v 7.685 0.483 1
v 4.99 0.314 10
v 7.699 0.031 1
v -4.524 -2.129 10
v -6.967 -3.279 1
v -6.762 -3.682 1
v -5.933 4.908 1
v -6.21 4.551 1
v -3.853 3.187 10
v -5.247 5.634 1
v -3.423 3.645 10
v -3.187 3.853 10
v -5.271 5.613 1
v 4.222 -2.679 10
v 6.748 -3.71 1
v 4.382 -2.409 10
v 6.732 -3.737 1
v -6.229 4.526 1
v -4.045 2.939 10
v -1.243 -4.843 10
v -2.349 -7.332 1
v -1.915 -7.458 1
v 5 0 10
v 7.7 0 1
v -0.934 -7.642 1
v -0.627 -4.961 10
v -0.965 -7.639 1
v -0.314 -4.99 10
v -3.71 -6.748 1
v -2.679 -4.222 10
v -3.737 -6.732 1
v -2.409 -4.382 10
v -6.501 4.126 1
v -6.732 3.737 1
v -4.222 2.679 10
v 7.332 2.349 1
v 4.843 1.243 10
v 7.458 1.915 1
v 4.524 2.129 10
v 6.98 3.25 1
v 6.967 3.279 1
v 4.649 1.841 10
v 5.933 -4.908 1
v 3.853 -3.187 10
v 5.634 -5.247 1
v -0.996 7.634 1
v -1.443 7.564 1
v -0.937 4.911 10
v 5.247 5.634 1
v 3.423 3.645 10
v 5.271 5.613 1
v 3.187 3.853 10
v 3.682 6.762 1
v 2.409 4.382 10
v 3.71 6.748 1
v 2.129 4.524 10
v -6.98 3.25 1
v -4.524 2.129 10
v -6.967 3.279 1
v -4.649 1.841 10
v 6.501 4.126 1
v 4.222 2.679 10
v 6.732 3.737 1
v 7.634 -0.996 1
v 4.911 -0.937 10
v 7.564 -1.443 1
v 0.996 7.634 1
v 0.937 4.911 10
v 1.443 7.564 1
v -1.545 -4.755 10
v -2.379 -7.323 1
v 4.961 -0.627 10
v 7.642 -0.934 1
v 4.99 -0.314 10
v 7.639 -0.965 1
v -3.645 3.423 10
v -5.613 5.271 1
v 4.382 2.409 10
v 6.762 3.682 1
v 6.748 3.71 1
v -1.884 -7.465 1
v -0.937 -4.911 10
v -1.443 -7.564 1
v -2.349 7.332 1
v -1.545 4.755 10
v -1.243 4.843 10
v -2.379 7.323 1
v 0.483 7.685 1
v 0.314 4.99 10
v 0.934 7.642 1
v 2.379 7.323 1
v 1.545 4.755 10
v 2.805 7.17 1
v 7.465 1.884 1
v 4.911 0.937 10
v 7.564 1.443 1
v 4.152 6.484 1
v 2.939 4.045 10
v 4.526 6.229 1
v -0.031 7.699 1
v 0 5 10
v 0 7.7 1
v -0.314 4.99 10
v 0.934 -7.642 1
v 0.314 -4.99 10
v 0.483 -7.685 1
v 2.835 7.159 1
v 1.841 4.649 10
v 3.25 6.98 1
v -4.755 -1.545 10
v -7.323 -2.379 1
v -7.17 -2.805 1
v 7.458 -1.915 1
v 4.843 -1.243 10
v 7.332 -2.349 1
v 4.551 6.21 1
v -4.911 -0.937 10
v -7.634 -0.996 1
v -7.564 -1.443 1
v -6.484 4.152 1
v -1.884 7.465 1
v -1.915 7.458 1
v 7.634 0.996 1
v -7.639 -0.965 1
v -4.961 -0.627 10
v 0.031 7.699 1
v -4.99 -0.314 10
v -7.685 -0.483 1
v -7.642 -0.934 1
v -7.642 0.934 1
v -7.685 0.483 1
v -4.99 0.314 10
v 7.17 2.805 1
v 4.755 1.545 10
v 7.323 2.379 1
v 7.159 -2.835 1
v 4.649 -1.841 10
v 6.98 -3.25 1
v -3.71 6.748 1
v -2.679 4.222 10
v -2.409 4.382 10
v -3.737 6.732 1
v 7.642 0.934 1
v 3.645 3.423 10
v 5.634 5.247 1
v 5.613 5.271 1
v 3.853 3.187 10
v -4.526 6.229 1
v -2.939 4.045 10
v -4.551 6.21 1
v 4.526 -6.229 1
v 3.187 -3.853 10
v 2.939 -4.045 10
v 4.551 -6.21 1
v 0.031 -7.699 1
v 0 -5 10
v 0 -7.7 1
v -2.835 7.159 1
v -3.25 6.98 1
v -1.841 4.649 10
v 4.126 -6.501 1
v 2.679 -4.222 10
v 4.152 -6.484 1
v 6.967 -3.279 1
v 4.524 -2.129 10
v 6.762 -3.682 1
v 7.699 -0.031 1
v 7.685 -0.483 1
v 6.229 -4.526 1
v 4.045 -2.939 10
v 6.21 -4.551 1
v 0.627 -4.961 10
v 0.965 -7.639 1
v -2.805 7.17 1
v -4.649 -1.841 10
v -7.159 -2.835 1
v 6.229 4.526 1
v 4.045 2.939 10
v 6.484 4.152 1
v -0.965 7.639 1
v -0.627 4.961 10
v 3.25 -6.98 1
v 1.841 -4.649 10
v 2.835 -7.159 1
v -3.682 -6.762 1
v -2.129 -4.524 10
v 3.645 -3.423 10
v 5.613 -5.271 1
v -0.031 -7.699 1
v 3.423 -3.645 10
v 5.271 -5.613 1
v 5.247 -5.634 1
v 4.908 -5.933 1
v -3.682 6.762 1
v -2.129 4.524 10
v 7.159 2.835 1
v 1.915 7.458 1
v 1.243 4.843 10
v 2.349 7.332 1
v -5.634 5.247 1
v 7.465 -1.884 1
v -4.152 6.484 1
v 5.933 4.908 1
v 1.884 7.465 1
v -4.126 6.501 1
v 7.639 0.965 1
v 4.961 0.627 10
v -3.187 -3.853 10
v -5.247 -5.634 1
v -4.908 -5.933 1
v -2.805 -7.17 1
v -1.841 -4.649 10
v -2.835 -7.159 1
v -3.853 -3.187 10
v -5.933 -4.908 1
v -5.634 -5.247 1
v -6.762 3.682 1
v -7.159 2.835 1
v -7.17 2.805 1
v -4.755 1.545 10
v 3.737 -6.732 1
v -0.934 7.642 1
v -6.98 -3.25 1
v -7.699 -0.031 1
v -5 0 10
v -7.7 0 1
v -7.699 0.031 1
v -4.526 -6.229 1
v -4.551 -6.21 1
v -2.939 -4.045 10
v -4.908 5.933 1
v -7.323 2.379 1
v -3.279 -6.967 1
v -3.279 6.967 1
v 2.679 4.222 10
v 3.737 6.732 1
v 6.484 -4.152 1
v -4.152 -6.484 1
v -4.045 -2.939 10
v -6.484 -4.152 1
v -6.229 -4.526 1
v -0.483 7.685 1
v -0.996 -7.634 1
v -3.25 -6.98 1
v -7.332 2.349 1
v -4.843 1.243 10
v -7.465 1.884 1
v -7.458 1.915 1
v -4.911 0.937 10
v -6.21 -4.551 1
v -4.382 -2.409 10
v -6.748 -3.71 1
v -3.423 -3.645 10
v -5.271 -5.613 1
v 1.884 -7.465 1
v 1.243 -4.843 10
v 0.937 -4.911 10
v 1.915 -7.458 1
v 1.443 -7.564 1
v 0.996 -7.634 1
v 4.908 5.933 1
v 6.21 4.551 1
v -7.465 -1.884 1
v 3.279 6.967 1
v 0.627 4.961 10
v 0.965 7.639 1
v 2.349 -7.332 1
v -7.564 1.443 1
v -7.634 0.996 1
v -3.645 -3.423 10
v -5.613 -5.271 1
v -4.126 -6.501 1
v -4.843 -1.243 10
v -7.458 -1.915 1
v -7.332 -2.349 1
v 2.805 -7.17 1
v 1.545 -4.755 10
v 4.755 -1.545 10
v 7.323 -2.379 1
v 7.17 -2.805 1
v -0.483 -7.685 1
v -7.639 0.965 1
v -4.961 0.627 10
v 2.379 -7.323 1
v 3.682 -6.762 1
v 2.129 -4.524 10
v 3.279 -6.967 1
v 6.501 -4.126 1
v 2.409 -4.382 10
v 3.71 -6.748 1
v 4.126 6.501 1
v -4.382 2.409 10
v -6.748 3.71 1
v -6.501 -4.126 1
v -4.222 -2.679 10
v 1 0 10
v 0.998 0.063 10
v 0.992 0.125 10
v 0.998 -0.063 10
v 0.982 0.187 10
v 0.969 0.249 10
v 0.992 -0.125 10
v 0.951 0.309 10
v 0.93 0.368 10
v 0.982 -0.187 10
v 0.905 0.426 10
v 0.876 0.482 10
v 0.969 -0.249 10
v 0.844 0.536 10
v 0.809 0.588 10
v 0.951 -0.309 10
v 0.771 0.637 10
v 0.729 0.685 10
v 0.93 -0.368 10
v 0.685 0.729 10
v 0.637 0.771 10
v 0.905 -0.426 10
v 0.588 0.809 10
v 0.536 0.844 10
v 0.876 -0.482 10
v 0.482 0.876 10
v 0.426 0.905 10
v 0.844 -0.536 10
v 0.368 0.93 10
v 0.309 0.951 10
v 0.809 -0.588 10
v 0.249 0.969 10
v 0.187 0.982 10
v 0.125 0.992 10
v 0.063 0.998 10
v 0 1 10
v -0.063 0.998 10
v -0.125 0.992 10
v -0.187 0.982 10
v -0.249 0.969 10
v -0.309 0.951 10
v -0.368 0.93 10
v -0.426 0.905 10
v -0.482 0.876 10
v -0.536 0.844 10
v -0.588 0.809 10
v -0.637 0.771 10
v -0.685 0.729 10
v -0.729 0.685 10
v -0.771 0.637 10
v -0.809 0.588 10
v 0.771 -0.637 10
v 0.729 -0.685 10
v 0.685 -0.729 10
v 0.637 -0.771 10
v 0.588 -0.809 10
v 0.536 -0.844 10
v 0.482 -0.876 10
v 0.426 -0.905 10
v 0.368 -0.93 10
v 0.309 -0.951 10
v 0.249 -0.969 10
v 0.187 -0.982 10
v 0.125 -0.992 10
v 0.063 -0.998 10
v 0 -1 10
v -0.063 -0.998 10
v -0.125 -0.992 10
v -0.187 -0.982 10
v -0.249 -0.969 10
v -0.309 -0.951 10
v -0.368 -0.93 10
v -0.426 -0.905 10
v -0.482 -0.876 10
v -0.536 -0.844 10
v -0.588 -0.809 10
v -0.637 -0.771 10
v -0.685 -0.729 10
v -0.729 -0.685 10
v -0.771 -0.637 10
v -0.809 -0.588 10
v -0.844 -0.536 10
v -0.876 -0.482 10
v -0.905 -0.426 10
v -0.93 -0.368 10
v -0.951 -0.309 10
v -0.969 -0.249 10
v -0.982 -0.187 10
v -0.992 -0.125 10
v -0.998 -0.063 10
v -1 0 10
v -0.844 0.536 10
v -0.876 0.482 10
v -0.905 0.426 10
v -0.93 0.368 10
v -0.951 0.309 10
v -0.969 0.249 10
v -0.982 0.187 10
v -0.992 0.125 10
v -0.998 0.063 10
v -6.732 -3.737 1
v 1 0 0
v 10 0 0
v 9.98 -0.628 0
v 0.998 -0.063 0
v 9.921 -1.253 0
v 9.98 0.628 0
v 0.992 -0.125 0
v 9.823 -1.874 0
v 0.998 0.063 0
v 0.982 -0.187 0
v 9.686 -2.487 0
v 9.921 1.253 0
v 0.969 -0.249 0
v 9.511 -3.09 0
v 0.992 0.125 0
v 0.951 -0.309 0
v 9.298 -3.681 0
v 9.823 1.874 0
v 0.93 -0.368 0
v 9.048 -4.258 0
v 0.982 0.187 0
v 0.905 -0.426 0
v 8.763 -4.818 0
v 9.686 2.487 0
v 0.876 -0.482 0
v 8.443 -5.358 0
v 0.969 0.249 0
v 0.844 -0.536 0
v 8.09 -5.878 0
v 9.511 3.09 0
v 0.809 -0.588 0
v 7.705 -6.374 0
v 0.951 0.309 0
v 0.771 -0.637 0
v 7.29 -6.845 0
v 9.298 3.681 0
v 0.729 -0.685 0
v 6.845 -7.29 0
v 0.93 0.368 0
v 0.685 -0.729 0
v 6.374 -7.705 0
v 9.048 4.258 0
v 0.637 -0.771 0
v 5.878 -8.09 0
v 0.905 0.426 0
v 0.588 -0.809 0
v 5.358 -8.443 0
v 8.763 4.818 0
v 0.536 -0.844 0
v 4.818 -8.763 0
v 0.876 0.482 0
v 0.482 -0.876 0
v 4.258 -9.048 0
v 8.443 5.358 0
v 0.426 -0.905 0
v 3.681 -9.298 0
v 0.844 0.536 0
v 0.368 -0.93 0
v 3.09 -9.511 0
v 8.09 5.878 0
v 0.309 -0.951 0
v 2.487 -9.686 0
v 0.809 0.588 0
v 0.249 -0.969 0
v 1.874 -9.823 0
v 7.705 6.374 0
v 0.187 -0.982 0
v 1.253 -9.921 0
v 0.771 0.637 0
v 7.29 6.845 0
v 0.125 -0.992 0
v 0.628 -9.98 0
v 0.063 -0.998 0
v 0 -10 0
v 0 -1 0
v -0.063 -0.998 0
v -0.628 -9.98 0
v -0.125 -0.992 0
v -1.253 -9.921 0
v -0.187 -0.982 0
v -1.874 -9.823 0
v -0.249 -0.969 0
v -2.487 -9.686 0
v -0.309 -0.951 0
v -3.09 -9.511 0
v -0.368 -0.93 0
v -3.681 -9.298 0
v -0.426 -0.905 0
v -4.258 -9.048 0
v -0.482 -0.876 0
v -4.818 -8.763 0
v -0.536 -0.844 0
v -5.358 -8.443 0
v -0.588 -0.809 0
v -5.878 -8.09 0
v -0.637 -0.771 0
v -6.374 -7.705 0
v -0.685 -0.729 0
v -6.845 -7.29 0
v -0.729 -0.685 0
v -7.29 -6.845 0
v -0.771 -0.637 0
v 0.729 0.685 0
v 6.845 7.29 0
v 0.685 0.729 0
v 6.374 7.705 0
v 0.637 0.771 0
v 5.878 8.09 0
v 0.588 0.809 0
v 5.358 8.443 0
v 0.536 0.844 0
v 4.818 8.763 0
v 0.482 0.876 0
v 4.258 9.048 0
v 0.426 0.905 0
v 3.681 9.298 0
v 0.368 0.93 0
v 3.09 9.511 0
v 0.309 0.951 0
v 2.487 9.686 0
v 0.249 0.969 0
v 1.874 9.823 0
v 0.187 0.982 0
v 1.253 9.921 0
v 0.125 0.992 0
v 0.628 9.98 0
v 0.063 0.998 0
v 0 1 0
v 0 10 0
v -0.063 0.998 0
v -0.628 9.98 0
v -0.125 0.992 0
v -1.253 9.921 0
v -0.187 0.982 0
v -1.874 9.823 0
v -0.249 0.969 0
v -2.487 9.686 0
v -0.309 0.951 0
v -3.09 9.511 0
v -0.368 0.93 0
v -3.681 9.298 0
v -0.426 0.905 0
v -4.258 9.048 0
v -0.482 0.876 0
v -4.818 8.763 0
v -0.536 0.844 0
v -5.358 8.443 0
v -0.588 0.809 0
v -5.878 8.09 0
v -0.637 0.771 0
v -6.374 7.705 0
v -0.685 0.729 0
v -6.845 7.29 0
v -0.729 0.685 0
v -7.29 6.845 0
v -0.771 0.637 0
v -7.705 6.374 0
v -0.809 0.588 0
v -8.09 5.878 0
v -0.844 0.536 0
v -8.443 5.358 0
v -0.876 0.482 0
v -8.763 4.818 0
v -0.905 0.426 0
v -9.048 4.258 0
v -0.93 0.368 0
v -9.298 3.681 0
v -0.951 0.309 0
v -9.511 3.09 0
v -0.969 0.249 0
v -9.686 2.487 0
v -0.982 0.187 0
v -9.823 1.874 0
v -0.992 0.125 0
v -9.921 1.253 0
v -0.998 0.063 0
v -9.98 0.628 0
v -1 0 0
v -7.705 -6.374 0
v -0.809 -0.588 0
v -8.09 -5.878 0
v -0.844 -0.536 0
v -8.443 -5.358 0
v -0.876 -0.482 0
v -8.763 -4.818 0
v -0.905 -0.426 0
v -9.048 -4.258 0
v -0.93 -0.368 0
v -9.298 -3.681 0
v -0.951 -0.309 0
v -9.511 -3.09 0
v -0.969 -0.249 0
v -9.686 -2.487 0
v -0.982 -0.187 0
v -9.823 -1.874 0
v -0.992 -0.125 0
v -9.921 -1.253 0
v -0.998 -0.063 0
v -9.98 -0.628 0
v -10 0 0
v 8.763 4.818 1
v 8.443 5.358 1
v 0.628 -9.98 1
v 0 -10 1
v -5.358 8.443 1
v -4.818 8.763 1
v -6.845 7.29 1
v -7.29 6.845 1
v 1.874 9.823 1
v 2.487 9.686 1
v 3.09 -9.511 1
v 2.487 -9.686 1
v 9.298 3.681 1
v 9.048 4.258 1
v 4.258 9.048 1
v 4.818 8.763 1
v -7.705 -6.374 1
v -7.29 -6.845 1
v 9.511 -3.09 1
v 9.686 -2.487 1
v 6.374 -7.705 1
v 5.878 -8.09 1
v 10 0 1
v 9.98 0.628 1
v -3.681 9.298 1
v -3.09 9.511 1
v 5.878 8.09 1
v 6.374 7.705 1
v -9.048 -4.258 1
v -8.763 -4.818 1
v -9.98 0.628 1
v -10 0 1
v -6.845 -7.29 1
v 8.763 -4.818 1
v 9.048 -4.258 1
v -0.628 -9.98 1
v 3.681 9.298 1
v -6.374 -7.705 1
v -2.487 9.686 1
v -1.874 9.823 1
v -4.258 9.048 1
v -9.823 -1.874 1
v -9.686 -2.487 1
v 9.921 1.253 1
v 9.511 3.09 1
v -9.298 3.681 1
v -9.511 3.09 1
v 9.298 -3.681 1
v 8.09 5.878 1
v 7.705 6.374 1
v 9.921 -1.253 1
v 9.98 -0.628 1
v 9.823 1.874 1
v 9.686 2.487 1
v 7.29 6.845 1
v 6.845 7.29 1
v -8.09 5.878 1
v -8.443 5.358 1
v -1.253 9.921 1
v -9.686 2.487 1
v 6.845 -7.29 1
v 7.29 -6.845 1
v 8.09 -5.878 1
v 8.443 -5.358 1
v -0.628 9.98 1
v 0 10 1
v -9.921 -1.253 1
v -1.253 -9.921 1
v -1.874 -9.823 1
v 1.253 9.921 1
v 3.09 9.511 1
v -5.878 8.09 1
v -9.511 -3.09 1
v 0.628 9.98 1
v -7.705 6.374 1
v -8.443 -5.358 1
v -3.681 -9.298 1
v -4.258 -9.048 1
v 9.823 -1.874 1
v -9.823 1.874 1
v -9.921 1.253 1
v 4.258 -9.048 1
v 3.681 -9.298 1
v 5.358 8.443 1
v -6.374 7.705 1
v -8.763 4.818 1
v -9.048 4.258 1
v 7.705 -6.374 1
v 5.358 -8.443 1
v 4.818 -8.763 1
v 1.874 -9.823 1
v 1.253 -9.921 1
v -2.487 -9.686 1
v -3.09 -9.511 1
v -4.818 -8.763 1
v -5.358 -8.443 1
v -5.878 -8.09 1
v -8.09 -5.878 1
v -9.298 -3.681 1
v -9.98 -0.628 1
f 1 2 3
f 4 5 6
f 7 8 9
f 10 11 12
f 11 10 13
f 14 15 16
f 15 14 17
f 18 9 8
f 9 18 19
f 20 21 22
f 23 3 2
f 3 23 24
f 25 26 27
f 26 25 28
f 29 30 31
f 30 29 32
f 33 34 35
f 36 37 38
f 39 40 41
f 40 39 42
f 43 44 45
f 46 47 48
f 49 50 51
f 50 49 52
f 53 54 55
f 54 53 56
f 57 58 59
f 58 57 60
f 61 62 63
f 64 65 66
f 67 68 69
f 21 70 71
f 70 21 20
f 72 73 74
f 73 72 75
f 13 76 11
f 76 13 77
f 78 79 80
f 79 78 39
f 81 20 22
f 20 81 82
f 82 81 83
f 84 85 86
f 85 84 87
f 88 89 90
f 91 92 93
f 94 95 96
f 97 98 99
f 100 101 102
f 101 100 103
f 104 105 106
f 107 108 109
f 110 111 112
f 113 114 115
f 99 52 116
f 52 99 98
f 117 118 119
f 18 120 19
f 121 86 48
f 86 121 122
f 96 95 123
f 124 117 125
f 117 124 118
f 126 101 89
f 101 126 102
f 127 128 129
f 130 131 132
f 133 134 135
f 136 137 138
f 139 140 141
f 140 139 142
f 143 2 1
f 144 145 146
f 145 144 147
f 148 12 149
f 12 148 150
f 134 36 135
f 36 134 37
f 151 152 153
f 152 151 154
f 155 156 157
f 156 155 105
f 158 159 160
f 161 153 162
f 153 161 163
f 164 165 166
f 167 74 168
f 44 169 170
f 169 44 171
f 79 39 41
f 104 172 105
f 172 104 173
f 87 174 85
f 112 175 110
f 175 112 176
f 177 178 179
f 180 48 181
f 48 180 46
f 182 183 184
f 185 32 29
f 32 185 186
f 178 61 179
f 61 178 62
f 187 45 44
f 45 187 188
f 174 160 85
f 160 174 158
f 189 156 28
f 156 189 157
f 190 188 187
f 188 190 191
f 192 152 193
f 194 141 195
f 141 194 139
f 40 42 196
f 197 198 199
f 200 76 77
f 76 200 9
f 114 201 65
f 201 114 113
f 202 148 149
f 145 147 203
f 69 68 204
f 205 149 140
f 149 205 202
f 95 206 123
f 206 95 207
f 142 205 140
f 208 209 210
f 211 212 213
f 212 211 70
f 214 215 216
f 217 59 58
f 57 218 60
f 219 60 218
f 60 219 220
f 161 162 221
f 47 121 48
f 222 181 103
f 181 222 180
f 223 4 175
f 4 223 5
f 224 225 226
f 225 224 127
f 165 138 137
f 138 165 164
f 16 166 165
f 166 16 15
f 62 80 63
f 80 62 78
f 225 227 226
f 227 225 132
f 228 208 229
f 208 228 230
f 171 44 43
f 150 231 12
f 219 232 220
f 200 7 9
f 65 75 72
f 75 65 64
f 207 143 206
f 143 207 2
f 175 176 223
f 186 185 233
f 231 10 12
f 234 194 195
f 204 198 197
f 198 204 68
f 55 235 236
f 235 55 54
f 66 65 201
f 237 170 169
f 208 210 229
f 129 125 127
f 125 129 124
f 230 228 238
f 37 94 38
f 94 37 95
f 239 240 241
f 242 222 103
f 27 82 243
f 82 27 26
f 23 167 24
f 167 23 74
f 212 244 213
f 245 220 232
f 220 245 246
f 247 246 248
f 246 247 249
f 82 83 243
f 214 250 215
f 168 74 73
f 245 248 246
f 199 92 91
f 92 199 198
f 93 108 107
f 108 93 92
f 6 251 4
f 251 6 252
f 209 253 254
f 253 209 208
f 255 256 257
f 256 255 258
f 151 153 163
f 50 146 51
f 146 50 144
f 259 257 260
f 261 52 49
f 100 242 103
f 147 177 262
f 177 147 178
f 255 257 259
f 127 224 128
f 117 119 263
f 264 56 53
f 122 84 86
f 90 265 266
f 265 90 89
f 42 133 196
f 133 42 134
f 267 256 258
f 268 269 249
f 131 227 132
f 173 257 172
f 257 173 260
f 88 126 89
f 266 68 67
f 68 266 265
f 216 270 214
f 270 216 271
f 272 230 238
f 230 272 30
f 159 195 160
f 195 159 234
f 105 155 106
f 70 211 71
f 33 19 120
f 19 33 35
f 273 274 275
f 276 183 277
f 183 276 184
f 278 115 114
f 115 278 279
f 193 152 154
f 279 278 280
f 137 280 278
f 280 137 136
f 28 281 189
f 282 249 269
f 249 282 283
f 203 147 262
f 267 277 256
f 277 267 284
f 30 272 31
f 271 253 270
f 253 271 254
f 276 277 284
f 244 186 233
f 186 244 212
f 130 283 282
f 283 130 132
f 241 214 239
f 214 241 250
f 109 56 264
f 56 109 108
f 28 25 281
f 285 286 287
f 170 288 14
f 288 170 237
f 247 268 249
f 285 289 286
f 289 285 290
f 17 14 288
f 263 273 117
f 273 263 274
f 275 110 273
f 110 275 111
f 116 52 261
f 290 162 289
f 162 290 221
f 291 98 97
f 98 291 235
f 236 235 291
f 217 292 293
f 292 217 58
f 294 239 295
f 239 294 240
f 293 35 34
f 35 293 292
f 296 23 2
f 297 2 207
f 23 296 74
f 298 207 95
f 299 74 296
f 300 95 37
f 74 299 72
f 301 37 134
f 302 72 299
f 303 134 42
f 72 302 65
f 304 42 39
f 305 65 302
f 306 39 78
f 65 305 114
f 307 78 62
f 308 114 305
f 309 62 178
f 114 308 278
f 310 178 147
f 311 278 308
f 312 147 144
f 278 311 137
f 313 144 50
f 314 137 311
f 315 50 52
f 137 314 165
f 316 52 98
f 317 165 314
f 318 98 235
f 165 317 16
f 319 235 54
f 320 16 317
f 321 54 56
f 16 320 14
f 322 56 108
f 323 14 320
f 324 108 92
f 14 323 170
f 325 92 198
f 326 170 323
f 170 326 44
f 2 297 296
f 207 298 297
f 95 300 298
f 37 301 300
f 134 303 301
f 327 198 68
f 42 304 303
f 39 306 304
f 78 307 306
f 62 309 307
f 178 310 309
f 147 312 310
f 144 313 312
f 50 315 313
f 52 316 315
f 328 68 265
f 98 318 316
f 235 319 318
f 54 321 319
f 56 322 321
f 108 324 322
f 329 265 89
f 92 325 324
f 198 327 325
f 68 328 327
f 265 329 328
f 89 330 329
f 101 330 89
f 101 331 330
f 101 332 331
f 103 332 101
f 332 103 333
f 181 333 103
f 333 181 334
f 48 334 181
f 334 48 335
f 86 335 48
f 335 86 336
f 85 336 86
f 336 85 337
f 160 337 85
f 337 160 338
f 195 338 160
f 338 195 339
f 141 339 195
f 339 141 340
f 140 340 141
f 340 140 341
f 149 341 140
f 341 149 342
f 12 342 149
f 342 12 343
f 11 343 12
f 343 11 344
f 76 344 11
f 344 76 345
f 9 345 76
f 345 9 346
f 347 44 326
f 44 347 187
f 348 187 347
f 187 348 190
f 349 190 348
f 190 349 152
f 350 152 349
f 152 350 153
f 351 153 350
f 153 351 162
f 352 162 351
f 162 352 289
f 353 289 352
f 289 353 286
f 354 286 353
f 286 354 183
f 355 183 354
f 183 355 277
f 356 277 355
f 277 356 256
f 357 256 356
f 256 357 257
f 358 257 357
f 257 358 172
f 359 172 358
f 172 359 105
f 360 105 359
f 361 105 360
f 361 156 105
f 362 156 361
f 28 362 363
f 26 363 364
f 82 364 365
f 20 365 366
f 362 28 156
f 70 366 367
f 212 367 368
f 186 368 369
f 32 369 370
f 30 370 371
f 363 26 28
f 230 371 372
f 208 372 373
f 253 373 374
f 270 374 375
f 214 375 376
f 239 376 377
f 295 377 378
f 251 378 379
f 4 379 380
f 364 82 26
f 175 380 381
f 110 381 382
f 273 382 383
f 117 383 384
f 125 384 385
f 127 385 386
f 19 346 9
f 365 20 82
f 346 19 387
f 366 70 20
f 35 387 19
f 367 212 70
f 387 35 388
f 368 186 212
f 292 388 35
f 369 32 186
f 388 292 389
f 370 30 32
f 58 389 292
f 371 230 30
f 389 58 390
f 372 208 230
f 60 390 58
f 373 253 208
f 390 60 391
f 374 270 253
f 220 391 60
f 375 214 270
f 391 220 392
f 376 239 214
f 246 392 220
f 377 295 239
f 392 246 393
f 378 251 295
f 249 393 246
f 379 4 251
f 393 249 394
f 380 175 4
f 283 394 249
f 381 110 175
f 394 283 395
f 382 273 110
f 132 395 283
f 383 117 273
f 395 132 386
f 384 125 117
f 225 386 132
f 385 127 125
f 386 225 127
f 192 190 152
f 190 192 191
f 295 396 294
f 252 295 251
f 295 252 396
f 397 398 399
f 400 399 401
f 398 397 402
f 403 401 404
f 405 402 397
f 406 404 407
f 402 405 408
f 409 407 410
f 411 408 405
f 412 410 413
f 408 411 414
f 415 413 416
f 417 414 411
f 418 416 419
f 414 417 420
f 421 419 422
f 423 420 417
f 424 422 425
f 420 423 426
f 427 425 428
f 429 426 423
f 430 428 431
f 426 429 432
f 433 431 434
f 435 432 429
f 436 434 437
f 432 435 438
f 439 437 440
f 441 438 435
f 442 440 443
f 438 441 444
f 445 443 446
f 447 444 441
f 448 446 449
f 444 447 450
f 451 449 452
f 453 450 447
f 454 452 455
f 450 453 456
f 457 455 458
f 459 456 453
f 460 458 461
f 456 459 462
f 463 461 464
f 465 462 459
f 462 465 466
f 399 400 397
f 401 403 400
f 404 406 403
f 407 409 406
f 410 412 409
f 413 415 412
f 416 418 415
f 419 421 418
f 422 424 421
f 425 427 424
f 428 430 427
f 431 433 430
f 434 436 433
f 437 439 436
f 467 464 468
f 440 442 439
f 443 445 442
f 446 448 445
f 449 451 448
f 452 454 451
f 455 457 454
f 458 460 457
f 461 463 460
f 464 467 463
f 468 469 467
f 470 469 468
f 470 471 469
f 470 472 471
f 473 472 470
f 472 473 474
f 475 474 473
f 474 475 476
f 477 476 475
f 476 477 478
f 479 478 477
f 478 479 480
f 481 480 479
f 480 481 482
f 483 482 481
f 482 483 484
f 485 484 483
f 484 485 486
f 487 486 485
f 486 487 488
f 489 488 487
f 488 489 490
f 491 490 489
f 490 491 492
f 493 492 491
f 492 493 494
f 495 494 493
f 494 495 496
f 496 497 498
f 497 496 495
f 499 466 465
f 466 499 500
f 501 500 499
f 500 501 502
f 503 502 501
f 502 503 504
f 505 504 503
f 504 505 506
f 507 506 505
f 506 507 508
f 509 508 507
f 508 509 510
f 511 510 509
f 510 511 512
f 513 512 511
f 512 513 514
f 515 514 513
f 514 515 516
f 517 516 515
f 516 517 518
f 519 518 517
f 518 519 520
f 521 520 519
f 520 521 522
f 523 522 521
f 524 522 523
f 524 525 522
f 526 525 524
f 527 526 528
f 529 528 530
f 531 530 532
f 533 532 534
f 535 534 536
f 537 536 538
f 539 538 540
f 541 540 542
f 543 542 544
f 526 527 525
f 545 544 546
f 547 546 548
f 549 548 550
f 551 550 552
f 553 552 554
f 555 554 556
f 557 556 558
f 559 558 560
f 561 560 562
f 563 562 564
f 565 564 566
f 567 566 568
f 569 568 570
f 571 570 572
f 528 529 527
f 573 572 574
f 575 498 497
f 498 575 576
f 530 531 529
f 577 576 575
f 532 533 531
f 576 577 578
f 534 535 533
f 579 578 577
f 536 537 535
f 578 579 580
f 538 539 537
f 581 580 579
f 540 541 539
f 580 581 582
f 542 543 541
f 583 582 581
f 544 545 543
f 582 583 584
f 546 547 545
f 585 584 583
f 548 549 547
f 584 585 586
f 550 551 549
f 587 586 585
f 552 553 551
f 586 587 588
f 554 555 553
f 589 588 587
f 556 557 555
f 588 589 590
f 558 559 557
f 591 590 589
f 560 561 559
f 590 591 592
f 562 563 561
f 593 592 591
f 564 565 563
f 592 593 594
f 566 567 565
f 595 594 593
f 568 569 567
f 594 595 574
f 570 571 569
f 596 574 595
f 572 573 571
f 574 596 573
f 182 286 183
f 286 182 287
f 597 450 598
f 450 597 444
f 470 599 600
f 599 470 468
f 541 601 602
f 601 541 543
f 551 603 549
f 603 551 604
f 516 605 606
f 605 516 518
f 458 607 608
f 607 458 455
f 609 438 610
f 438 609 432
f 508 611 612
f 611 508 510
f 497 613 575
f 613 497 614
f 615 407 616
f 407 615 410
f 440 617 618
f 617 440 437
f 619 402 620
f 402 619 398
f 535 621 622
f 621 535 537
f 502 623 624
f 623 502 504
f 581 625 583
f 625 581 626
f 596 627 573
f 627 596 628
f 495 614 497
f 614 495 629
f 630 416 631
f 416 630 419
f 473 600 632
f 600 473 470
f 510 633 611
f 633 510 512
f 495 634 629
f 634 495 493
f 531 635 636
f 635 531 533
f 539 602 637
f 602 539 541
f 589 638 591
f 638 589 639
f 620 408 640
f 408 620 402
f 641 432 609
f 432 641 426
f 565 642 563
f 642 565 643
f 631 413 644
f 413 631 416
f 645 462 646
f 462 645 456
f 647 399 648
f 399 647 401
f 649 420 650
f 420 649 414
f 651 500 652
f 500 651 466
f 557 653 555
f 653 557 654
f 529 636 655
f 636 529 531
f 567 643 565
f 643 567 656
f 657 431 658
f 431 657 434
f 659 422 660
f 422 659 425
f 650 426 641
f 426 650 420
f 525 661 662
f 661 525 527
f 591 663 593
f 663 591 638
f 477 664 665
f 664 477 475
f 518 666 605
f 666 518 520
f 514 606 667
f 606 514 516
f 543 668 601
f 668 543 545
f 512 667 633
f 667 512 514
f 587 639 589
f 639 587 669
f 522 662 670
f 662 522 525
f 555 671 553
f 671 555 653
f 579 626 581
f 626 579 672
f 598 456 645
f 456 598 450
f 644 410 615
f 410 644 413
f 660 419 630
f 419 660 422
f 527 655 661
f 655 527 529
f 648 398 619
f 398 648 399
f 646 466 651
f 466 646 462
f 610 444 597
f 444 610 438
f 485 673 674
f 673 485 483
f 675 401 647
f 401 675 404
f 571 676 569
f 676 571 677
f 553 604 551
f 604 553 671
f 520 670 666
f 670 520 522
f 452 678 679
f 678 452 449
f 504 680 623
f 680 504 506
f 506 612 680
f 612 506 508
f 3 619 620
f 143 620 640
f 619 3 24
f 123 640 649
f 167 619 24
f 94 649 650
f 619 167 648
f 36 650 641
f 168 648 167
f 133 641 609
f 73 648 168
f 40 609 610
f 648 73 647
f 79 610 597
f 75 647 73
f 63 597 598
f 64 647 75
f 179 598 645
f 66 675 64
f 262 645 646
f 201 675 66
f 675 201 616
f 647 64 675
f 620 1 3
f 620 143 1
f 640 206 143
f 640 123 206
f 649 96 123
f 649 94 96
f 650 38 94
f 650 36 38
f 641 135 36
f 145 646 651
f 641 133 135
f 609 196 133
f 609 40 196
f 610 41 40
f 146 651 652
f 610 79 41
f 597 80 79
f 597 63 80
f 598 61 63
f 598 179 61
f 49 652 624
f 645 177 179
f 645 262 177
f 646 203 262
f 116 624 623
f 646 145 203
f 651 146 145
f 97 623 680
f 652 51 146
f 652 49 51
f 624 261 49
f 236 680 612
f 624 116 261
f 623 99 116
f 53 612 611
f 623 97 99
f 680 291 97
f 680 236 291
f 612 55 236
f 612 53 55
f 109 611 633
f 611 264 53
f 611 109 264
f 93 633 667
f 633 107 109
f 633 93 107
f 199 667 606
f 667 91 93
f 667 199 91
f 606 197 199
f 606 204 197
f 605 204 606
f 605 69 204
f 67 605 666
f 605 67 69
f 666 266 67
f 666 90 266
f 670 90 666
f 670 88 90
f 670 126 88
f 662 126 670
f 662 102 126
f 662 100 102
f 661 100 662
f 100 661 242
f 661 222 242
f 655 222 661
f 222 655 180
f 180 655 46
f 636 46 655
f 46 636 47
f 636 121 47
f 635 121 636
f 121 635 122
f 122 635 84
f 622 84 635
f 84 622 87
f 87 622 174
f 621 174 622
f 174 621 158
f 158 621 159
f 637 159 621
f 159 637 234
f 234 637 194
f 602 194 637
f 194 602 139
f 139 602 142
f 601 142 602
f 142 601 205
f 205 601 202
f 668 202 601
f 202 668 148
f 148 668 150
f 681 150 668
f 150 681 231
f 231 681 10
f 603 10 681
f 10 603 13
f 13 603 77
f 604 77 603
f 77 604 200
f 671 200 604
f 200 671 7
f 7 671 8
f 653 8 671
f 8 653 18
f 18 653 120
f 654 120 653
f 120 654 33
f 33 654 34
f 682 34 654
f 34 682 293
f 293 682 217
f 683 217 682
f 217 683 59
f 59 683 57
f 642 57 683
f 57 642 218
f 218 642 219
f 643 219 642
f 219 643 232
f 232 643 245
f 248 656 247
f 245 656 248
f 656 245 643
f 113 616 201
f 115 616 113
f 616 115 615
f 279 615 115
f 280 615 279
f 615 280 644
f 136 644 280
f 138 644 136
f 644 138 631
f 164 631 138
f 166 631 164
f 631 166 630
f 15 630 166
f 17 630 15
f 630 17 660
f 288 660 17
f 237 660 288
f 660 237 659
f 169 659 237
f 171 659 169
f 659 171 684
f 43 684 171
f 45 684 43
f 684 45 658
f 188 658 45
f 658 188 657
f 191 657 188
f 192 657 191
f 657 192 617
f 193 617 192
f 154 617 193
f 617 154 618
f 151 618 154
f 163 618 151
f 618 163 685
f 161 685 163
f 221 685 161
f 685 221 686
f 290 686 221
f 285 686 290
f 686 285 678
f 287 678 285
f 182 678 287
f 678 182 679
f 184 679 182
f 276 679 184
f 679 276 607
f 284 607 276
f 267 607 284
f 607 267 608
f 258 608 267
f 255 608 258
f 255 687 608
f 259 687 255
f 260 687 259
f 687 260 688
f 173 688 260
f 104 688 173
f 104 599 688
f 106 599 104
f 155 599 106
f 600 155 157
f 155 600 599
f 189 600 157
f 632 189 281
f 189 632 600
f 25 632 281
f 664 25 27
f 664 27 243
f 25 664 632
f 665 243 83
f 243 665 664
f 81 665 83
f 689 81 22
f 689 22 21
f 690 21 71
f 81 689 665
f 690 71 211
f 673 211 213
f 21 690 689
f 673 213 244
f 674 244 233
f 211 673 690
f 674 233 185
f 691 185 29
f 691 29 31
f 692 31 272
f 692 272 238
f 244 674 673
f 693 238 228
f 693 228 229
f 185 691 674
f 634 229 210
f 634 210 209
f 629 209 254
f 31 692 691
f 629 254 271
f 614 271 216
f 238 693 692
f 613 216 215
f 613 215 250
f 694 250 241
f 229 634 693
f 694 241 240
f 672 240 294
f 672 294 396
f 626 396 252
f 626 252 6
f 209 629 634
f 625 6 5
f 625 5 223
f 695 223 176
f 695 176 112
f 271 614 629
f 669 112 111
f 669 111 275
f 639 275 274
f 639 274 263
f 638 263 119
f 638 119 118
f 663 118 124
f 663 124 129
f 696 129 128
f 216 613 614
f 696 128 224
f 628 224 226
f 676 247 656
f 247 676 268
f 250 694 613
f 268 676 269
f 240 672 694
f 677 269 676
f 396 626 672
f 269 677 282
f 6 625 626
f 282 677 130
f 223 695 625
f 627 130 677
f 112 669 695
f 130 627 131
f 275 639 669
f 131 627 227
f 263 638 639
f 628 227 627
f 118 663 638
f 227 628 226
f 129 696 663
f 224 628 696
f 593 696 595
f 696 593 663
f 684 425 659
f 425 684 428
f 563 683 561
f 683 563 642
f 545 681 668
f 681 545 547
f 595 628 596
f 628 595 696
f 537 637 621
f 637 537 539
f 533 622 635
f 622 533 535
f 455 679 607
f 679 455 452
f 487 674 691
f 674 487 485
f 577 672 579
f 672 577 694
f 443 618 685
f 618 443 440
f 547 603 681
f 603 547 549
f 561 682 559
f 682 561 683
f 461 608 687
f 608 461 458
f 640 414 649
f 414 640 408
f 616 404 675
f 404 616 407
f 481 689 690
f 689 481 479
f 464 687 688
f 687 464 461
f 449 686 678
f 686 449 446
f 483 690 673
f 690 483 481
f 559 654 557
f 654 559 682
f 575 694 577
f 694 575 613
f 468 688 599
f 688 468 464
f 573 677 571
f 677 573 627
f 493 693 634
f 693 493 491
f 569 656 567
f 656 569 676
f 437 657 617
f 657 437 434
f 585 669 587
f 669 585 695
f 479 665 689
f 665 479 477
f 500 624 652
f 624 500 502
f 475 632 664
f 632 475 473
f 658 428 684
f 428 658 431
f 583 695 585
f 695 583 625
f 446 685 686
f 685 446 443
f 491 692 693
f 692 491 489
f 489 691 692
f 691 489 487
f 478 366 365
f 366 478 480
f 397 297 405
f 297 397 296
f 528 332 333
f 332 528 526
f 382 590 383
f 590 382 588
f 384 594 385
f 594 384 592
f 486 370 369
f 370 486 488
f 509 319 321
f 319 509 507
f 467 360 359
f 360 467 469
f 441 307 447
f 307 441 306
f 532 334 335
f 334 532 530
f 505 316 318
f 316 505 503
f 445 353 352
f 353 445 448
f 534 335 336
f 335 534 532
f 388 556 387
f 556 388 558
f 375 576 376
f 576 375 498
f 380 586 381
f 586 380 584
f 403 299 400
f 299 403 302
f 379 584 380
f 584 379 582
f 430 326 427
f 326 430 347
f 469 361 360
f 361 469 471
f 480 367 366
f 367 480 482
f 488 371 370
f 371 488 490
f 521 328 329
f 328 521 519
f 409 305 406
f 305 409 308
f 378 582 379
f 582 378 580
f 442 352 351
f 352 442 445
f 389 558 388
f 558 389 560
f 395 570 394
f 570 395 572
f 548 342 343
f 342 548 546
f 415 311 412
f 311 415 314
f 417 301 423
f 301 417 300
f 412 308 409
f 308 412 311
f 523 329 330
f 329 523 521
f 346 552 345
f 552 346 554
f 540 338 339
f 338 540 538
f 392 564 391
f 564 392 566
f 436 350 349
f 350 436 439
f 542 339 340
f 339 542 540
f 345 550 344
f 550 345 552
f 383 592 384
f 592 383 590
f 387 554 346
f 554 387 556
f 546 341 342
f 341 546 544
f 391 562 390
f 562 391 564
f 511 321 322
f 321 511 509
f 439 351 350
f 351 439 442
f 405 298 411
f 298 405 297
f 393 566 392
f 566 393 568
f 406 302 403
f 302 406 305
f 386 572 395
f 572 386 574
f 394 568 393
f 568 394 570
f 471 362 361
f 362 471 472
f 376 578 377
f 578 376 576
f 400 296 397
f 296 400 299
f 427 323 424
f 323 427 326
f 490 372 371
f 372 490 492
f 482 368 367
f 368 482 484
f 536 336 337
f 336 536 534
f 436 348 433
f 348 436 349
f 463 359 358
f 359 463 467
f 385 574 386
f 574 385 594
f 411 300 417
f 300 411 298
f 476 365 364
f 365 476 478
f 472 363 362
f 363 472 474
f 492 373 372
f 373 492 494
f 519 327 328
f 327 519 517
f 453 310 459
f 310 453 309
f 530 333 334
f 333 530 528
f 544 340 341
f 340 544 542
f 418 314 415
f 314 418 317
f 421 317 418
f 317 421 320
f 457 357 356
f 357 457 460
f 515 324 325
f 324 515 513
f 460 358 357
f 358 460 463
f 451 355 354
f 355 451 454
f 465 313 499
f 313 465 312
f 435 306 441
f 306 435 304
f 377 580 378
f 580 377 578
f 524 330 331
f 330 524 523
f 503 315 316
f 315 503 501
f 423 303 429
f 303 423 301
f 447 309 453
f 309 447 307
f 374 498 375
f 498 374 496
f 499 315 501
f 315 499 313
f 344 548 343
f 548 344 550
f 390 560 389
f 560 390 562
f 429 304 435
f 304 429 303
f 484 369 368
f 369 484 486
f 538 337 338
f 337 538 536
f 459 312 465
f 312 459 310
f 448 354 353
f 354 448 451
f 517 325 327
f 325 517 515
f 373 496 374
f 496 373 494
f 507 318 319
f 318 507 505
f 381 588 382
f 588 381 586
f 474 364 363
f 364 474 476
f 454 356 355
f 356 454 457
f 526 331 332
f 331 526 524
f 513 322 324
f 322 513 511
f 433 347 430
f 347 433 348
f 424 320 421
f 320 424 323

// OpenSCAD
$fn = 100;

difference(){
    union() {
        cylinder(h=10, r1=8, r2=5);
        cylinder(h = 1, r = 10);
    }
    translate([0, 0, -10]) cylinder(h = 30, r = 1);
    translate([-10,-10,-20]) cube([20, 20, 20]);
}
